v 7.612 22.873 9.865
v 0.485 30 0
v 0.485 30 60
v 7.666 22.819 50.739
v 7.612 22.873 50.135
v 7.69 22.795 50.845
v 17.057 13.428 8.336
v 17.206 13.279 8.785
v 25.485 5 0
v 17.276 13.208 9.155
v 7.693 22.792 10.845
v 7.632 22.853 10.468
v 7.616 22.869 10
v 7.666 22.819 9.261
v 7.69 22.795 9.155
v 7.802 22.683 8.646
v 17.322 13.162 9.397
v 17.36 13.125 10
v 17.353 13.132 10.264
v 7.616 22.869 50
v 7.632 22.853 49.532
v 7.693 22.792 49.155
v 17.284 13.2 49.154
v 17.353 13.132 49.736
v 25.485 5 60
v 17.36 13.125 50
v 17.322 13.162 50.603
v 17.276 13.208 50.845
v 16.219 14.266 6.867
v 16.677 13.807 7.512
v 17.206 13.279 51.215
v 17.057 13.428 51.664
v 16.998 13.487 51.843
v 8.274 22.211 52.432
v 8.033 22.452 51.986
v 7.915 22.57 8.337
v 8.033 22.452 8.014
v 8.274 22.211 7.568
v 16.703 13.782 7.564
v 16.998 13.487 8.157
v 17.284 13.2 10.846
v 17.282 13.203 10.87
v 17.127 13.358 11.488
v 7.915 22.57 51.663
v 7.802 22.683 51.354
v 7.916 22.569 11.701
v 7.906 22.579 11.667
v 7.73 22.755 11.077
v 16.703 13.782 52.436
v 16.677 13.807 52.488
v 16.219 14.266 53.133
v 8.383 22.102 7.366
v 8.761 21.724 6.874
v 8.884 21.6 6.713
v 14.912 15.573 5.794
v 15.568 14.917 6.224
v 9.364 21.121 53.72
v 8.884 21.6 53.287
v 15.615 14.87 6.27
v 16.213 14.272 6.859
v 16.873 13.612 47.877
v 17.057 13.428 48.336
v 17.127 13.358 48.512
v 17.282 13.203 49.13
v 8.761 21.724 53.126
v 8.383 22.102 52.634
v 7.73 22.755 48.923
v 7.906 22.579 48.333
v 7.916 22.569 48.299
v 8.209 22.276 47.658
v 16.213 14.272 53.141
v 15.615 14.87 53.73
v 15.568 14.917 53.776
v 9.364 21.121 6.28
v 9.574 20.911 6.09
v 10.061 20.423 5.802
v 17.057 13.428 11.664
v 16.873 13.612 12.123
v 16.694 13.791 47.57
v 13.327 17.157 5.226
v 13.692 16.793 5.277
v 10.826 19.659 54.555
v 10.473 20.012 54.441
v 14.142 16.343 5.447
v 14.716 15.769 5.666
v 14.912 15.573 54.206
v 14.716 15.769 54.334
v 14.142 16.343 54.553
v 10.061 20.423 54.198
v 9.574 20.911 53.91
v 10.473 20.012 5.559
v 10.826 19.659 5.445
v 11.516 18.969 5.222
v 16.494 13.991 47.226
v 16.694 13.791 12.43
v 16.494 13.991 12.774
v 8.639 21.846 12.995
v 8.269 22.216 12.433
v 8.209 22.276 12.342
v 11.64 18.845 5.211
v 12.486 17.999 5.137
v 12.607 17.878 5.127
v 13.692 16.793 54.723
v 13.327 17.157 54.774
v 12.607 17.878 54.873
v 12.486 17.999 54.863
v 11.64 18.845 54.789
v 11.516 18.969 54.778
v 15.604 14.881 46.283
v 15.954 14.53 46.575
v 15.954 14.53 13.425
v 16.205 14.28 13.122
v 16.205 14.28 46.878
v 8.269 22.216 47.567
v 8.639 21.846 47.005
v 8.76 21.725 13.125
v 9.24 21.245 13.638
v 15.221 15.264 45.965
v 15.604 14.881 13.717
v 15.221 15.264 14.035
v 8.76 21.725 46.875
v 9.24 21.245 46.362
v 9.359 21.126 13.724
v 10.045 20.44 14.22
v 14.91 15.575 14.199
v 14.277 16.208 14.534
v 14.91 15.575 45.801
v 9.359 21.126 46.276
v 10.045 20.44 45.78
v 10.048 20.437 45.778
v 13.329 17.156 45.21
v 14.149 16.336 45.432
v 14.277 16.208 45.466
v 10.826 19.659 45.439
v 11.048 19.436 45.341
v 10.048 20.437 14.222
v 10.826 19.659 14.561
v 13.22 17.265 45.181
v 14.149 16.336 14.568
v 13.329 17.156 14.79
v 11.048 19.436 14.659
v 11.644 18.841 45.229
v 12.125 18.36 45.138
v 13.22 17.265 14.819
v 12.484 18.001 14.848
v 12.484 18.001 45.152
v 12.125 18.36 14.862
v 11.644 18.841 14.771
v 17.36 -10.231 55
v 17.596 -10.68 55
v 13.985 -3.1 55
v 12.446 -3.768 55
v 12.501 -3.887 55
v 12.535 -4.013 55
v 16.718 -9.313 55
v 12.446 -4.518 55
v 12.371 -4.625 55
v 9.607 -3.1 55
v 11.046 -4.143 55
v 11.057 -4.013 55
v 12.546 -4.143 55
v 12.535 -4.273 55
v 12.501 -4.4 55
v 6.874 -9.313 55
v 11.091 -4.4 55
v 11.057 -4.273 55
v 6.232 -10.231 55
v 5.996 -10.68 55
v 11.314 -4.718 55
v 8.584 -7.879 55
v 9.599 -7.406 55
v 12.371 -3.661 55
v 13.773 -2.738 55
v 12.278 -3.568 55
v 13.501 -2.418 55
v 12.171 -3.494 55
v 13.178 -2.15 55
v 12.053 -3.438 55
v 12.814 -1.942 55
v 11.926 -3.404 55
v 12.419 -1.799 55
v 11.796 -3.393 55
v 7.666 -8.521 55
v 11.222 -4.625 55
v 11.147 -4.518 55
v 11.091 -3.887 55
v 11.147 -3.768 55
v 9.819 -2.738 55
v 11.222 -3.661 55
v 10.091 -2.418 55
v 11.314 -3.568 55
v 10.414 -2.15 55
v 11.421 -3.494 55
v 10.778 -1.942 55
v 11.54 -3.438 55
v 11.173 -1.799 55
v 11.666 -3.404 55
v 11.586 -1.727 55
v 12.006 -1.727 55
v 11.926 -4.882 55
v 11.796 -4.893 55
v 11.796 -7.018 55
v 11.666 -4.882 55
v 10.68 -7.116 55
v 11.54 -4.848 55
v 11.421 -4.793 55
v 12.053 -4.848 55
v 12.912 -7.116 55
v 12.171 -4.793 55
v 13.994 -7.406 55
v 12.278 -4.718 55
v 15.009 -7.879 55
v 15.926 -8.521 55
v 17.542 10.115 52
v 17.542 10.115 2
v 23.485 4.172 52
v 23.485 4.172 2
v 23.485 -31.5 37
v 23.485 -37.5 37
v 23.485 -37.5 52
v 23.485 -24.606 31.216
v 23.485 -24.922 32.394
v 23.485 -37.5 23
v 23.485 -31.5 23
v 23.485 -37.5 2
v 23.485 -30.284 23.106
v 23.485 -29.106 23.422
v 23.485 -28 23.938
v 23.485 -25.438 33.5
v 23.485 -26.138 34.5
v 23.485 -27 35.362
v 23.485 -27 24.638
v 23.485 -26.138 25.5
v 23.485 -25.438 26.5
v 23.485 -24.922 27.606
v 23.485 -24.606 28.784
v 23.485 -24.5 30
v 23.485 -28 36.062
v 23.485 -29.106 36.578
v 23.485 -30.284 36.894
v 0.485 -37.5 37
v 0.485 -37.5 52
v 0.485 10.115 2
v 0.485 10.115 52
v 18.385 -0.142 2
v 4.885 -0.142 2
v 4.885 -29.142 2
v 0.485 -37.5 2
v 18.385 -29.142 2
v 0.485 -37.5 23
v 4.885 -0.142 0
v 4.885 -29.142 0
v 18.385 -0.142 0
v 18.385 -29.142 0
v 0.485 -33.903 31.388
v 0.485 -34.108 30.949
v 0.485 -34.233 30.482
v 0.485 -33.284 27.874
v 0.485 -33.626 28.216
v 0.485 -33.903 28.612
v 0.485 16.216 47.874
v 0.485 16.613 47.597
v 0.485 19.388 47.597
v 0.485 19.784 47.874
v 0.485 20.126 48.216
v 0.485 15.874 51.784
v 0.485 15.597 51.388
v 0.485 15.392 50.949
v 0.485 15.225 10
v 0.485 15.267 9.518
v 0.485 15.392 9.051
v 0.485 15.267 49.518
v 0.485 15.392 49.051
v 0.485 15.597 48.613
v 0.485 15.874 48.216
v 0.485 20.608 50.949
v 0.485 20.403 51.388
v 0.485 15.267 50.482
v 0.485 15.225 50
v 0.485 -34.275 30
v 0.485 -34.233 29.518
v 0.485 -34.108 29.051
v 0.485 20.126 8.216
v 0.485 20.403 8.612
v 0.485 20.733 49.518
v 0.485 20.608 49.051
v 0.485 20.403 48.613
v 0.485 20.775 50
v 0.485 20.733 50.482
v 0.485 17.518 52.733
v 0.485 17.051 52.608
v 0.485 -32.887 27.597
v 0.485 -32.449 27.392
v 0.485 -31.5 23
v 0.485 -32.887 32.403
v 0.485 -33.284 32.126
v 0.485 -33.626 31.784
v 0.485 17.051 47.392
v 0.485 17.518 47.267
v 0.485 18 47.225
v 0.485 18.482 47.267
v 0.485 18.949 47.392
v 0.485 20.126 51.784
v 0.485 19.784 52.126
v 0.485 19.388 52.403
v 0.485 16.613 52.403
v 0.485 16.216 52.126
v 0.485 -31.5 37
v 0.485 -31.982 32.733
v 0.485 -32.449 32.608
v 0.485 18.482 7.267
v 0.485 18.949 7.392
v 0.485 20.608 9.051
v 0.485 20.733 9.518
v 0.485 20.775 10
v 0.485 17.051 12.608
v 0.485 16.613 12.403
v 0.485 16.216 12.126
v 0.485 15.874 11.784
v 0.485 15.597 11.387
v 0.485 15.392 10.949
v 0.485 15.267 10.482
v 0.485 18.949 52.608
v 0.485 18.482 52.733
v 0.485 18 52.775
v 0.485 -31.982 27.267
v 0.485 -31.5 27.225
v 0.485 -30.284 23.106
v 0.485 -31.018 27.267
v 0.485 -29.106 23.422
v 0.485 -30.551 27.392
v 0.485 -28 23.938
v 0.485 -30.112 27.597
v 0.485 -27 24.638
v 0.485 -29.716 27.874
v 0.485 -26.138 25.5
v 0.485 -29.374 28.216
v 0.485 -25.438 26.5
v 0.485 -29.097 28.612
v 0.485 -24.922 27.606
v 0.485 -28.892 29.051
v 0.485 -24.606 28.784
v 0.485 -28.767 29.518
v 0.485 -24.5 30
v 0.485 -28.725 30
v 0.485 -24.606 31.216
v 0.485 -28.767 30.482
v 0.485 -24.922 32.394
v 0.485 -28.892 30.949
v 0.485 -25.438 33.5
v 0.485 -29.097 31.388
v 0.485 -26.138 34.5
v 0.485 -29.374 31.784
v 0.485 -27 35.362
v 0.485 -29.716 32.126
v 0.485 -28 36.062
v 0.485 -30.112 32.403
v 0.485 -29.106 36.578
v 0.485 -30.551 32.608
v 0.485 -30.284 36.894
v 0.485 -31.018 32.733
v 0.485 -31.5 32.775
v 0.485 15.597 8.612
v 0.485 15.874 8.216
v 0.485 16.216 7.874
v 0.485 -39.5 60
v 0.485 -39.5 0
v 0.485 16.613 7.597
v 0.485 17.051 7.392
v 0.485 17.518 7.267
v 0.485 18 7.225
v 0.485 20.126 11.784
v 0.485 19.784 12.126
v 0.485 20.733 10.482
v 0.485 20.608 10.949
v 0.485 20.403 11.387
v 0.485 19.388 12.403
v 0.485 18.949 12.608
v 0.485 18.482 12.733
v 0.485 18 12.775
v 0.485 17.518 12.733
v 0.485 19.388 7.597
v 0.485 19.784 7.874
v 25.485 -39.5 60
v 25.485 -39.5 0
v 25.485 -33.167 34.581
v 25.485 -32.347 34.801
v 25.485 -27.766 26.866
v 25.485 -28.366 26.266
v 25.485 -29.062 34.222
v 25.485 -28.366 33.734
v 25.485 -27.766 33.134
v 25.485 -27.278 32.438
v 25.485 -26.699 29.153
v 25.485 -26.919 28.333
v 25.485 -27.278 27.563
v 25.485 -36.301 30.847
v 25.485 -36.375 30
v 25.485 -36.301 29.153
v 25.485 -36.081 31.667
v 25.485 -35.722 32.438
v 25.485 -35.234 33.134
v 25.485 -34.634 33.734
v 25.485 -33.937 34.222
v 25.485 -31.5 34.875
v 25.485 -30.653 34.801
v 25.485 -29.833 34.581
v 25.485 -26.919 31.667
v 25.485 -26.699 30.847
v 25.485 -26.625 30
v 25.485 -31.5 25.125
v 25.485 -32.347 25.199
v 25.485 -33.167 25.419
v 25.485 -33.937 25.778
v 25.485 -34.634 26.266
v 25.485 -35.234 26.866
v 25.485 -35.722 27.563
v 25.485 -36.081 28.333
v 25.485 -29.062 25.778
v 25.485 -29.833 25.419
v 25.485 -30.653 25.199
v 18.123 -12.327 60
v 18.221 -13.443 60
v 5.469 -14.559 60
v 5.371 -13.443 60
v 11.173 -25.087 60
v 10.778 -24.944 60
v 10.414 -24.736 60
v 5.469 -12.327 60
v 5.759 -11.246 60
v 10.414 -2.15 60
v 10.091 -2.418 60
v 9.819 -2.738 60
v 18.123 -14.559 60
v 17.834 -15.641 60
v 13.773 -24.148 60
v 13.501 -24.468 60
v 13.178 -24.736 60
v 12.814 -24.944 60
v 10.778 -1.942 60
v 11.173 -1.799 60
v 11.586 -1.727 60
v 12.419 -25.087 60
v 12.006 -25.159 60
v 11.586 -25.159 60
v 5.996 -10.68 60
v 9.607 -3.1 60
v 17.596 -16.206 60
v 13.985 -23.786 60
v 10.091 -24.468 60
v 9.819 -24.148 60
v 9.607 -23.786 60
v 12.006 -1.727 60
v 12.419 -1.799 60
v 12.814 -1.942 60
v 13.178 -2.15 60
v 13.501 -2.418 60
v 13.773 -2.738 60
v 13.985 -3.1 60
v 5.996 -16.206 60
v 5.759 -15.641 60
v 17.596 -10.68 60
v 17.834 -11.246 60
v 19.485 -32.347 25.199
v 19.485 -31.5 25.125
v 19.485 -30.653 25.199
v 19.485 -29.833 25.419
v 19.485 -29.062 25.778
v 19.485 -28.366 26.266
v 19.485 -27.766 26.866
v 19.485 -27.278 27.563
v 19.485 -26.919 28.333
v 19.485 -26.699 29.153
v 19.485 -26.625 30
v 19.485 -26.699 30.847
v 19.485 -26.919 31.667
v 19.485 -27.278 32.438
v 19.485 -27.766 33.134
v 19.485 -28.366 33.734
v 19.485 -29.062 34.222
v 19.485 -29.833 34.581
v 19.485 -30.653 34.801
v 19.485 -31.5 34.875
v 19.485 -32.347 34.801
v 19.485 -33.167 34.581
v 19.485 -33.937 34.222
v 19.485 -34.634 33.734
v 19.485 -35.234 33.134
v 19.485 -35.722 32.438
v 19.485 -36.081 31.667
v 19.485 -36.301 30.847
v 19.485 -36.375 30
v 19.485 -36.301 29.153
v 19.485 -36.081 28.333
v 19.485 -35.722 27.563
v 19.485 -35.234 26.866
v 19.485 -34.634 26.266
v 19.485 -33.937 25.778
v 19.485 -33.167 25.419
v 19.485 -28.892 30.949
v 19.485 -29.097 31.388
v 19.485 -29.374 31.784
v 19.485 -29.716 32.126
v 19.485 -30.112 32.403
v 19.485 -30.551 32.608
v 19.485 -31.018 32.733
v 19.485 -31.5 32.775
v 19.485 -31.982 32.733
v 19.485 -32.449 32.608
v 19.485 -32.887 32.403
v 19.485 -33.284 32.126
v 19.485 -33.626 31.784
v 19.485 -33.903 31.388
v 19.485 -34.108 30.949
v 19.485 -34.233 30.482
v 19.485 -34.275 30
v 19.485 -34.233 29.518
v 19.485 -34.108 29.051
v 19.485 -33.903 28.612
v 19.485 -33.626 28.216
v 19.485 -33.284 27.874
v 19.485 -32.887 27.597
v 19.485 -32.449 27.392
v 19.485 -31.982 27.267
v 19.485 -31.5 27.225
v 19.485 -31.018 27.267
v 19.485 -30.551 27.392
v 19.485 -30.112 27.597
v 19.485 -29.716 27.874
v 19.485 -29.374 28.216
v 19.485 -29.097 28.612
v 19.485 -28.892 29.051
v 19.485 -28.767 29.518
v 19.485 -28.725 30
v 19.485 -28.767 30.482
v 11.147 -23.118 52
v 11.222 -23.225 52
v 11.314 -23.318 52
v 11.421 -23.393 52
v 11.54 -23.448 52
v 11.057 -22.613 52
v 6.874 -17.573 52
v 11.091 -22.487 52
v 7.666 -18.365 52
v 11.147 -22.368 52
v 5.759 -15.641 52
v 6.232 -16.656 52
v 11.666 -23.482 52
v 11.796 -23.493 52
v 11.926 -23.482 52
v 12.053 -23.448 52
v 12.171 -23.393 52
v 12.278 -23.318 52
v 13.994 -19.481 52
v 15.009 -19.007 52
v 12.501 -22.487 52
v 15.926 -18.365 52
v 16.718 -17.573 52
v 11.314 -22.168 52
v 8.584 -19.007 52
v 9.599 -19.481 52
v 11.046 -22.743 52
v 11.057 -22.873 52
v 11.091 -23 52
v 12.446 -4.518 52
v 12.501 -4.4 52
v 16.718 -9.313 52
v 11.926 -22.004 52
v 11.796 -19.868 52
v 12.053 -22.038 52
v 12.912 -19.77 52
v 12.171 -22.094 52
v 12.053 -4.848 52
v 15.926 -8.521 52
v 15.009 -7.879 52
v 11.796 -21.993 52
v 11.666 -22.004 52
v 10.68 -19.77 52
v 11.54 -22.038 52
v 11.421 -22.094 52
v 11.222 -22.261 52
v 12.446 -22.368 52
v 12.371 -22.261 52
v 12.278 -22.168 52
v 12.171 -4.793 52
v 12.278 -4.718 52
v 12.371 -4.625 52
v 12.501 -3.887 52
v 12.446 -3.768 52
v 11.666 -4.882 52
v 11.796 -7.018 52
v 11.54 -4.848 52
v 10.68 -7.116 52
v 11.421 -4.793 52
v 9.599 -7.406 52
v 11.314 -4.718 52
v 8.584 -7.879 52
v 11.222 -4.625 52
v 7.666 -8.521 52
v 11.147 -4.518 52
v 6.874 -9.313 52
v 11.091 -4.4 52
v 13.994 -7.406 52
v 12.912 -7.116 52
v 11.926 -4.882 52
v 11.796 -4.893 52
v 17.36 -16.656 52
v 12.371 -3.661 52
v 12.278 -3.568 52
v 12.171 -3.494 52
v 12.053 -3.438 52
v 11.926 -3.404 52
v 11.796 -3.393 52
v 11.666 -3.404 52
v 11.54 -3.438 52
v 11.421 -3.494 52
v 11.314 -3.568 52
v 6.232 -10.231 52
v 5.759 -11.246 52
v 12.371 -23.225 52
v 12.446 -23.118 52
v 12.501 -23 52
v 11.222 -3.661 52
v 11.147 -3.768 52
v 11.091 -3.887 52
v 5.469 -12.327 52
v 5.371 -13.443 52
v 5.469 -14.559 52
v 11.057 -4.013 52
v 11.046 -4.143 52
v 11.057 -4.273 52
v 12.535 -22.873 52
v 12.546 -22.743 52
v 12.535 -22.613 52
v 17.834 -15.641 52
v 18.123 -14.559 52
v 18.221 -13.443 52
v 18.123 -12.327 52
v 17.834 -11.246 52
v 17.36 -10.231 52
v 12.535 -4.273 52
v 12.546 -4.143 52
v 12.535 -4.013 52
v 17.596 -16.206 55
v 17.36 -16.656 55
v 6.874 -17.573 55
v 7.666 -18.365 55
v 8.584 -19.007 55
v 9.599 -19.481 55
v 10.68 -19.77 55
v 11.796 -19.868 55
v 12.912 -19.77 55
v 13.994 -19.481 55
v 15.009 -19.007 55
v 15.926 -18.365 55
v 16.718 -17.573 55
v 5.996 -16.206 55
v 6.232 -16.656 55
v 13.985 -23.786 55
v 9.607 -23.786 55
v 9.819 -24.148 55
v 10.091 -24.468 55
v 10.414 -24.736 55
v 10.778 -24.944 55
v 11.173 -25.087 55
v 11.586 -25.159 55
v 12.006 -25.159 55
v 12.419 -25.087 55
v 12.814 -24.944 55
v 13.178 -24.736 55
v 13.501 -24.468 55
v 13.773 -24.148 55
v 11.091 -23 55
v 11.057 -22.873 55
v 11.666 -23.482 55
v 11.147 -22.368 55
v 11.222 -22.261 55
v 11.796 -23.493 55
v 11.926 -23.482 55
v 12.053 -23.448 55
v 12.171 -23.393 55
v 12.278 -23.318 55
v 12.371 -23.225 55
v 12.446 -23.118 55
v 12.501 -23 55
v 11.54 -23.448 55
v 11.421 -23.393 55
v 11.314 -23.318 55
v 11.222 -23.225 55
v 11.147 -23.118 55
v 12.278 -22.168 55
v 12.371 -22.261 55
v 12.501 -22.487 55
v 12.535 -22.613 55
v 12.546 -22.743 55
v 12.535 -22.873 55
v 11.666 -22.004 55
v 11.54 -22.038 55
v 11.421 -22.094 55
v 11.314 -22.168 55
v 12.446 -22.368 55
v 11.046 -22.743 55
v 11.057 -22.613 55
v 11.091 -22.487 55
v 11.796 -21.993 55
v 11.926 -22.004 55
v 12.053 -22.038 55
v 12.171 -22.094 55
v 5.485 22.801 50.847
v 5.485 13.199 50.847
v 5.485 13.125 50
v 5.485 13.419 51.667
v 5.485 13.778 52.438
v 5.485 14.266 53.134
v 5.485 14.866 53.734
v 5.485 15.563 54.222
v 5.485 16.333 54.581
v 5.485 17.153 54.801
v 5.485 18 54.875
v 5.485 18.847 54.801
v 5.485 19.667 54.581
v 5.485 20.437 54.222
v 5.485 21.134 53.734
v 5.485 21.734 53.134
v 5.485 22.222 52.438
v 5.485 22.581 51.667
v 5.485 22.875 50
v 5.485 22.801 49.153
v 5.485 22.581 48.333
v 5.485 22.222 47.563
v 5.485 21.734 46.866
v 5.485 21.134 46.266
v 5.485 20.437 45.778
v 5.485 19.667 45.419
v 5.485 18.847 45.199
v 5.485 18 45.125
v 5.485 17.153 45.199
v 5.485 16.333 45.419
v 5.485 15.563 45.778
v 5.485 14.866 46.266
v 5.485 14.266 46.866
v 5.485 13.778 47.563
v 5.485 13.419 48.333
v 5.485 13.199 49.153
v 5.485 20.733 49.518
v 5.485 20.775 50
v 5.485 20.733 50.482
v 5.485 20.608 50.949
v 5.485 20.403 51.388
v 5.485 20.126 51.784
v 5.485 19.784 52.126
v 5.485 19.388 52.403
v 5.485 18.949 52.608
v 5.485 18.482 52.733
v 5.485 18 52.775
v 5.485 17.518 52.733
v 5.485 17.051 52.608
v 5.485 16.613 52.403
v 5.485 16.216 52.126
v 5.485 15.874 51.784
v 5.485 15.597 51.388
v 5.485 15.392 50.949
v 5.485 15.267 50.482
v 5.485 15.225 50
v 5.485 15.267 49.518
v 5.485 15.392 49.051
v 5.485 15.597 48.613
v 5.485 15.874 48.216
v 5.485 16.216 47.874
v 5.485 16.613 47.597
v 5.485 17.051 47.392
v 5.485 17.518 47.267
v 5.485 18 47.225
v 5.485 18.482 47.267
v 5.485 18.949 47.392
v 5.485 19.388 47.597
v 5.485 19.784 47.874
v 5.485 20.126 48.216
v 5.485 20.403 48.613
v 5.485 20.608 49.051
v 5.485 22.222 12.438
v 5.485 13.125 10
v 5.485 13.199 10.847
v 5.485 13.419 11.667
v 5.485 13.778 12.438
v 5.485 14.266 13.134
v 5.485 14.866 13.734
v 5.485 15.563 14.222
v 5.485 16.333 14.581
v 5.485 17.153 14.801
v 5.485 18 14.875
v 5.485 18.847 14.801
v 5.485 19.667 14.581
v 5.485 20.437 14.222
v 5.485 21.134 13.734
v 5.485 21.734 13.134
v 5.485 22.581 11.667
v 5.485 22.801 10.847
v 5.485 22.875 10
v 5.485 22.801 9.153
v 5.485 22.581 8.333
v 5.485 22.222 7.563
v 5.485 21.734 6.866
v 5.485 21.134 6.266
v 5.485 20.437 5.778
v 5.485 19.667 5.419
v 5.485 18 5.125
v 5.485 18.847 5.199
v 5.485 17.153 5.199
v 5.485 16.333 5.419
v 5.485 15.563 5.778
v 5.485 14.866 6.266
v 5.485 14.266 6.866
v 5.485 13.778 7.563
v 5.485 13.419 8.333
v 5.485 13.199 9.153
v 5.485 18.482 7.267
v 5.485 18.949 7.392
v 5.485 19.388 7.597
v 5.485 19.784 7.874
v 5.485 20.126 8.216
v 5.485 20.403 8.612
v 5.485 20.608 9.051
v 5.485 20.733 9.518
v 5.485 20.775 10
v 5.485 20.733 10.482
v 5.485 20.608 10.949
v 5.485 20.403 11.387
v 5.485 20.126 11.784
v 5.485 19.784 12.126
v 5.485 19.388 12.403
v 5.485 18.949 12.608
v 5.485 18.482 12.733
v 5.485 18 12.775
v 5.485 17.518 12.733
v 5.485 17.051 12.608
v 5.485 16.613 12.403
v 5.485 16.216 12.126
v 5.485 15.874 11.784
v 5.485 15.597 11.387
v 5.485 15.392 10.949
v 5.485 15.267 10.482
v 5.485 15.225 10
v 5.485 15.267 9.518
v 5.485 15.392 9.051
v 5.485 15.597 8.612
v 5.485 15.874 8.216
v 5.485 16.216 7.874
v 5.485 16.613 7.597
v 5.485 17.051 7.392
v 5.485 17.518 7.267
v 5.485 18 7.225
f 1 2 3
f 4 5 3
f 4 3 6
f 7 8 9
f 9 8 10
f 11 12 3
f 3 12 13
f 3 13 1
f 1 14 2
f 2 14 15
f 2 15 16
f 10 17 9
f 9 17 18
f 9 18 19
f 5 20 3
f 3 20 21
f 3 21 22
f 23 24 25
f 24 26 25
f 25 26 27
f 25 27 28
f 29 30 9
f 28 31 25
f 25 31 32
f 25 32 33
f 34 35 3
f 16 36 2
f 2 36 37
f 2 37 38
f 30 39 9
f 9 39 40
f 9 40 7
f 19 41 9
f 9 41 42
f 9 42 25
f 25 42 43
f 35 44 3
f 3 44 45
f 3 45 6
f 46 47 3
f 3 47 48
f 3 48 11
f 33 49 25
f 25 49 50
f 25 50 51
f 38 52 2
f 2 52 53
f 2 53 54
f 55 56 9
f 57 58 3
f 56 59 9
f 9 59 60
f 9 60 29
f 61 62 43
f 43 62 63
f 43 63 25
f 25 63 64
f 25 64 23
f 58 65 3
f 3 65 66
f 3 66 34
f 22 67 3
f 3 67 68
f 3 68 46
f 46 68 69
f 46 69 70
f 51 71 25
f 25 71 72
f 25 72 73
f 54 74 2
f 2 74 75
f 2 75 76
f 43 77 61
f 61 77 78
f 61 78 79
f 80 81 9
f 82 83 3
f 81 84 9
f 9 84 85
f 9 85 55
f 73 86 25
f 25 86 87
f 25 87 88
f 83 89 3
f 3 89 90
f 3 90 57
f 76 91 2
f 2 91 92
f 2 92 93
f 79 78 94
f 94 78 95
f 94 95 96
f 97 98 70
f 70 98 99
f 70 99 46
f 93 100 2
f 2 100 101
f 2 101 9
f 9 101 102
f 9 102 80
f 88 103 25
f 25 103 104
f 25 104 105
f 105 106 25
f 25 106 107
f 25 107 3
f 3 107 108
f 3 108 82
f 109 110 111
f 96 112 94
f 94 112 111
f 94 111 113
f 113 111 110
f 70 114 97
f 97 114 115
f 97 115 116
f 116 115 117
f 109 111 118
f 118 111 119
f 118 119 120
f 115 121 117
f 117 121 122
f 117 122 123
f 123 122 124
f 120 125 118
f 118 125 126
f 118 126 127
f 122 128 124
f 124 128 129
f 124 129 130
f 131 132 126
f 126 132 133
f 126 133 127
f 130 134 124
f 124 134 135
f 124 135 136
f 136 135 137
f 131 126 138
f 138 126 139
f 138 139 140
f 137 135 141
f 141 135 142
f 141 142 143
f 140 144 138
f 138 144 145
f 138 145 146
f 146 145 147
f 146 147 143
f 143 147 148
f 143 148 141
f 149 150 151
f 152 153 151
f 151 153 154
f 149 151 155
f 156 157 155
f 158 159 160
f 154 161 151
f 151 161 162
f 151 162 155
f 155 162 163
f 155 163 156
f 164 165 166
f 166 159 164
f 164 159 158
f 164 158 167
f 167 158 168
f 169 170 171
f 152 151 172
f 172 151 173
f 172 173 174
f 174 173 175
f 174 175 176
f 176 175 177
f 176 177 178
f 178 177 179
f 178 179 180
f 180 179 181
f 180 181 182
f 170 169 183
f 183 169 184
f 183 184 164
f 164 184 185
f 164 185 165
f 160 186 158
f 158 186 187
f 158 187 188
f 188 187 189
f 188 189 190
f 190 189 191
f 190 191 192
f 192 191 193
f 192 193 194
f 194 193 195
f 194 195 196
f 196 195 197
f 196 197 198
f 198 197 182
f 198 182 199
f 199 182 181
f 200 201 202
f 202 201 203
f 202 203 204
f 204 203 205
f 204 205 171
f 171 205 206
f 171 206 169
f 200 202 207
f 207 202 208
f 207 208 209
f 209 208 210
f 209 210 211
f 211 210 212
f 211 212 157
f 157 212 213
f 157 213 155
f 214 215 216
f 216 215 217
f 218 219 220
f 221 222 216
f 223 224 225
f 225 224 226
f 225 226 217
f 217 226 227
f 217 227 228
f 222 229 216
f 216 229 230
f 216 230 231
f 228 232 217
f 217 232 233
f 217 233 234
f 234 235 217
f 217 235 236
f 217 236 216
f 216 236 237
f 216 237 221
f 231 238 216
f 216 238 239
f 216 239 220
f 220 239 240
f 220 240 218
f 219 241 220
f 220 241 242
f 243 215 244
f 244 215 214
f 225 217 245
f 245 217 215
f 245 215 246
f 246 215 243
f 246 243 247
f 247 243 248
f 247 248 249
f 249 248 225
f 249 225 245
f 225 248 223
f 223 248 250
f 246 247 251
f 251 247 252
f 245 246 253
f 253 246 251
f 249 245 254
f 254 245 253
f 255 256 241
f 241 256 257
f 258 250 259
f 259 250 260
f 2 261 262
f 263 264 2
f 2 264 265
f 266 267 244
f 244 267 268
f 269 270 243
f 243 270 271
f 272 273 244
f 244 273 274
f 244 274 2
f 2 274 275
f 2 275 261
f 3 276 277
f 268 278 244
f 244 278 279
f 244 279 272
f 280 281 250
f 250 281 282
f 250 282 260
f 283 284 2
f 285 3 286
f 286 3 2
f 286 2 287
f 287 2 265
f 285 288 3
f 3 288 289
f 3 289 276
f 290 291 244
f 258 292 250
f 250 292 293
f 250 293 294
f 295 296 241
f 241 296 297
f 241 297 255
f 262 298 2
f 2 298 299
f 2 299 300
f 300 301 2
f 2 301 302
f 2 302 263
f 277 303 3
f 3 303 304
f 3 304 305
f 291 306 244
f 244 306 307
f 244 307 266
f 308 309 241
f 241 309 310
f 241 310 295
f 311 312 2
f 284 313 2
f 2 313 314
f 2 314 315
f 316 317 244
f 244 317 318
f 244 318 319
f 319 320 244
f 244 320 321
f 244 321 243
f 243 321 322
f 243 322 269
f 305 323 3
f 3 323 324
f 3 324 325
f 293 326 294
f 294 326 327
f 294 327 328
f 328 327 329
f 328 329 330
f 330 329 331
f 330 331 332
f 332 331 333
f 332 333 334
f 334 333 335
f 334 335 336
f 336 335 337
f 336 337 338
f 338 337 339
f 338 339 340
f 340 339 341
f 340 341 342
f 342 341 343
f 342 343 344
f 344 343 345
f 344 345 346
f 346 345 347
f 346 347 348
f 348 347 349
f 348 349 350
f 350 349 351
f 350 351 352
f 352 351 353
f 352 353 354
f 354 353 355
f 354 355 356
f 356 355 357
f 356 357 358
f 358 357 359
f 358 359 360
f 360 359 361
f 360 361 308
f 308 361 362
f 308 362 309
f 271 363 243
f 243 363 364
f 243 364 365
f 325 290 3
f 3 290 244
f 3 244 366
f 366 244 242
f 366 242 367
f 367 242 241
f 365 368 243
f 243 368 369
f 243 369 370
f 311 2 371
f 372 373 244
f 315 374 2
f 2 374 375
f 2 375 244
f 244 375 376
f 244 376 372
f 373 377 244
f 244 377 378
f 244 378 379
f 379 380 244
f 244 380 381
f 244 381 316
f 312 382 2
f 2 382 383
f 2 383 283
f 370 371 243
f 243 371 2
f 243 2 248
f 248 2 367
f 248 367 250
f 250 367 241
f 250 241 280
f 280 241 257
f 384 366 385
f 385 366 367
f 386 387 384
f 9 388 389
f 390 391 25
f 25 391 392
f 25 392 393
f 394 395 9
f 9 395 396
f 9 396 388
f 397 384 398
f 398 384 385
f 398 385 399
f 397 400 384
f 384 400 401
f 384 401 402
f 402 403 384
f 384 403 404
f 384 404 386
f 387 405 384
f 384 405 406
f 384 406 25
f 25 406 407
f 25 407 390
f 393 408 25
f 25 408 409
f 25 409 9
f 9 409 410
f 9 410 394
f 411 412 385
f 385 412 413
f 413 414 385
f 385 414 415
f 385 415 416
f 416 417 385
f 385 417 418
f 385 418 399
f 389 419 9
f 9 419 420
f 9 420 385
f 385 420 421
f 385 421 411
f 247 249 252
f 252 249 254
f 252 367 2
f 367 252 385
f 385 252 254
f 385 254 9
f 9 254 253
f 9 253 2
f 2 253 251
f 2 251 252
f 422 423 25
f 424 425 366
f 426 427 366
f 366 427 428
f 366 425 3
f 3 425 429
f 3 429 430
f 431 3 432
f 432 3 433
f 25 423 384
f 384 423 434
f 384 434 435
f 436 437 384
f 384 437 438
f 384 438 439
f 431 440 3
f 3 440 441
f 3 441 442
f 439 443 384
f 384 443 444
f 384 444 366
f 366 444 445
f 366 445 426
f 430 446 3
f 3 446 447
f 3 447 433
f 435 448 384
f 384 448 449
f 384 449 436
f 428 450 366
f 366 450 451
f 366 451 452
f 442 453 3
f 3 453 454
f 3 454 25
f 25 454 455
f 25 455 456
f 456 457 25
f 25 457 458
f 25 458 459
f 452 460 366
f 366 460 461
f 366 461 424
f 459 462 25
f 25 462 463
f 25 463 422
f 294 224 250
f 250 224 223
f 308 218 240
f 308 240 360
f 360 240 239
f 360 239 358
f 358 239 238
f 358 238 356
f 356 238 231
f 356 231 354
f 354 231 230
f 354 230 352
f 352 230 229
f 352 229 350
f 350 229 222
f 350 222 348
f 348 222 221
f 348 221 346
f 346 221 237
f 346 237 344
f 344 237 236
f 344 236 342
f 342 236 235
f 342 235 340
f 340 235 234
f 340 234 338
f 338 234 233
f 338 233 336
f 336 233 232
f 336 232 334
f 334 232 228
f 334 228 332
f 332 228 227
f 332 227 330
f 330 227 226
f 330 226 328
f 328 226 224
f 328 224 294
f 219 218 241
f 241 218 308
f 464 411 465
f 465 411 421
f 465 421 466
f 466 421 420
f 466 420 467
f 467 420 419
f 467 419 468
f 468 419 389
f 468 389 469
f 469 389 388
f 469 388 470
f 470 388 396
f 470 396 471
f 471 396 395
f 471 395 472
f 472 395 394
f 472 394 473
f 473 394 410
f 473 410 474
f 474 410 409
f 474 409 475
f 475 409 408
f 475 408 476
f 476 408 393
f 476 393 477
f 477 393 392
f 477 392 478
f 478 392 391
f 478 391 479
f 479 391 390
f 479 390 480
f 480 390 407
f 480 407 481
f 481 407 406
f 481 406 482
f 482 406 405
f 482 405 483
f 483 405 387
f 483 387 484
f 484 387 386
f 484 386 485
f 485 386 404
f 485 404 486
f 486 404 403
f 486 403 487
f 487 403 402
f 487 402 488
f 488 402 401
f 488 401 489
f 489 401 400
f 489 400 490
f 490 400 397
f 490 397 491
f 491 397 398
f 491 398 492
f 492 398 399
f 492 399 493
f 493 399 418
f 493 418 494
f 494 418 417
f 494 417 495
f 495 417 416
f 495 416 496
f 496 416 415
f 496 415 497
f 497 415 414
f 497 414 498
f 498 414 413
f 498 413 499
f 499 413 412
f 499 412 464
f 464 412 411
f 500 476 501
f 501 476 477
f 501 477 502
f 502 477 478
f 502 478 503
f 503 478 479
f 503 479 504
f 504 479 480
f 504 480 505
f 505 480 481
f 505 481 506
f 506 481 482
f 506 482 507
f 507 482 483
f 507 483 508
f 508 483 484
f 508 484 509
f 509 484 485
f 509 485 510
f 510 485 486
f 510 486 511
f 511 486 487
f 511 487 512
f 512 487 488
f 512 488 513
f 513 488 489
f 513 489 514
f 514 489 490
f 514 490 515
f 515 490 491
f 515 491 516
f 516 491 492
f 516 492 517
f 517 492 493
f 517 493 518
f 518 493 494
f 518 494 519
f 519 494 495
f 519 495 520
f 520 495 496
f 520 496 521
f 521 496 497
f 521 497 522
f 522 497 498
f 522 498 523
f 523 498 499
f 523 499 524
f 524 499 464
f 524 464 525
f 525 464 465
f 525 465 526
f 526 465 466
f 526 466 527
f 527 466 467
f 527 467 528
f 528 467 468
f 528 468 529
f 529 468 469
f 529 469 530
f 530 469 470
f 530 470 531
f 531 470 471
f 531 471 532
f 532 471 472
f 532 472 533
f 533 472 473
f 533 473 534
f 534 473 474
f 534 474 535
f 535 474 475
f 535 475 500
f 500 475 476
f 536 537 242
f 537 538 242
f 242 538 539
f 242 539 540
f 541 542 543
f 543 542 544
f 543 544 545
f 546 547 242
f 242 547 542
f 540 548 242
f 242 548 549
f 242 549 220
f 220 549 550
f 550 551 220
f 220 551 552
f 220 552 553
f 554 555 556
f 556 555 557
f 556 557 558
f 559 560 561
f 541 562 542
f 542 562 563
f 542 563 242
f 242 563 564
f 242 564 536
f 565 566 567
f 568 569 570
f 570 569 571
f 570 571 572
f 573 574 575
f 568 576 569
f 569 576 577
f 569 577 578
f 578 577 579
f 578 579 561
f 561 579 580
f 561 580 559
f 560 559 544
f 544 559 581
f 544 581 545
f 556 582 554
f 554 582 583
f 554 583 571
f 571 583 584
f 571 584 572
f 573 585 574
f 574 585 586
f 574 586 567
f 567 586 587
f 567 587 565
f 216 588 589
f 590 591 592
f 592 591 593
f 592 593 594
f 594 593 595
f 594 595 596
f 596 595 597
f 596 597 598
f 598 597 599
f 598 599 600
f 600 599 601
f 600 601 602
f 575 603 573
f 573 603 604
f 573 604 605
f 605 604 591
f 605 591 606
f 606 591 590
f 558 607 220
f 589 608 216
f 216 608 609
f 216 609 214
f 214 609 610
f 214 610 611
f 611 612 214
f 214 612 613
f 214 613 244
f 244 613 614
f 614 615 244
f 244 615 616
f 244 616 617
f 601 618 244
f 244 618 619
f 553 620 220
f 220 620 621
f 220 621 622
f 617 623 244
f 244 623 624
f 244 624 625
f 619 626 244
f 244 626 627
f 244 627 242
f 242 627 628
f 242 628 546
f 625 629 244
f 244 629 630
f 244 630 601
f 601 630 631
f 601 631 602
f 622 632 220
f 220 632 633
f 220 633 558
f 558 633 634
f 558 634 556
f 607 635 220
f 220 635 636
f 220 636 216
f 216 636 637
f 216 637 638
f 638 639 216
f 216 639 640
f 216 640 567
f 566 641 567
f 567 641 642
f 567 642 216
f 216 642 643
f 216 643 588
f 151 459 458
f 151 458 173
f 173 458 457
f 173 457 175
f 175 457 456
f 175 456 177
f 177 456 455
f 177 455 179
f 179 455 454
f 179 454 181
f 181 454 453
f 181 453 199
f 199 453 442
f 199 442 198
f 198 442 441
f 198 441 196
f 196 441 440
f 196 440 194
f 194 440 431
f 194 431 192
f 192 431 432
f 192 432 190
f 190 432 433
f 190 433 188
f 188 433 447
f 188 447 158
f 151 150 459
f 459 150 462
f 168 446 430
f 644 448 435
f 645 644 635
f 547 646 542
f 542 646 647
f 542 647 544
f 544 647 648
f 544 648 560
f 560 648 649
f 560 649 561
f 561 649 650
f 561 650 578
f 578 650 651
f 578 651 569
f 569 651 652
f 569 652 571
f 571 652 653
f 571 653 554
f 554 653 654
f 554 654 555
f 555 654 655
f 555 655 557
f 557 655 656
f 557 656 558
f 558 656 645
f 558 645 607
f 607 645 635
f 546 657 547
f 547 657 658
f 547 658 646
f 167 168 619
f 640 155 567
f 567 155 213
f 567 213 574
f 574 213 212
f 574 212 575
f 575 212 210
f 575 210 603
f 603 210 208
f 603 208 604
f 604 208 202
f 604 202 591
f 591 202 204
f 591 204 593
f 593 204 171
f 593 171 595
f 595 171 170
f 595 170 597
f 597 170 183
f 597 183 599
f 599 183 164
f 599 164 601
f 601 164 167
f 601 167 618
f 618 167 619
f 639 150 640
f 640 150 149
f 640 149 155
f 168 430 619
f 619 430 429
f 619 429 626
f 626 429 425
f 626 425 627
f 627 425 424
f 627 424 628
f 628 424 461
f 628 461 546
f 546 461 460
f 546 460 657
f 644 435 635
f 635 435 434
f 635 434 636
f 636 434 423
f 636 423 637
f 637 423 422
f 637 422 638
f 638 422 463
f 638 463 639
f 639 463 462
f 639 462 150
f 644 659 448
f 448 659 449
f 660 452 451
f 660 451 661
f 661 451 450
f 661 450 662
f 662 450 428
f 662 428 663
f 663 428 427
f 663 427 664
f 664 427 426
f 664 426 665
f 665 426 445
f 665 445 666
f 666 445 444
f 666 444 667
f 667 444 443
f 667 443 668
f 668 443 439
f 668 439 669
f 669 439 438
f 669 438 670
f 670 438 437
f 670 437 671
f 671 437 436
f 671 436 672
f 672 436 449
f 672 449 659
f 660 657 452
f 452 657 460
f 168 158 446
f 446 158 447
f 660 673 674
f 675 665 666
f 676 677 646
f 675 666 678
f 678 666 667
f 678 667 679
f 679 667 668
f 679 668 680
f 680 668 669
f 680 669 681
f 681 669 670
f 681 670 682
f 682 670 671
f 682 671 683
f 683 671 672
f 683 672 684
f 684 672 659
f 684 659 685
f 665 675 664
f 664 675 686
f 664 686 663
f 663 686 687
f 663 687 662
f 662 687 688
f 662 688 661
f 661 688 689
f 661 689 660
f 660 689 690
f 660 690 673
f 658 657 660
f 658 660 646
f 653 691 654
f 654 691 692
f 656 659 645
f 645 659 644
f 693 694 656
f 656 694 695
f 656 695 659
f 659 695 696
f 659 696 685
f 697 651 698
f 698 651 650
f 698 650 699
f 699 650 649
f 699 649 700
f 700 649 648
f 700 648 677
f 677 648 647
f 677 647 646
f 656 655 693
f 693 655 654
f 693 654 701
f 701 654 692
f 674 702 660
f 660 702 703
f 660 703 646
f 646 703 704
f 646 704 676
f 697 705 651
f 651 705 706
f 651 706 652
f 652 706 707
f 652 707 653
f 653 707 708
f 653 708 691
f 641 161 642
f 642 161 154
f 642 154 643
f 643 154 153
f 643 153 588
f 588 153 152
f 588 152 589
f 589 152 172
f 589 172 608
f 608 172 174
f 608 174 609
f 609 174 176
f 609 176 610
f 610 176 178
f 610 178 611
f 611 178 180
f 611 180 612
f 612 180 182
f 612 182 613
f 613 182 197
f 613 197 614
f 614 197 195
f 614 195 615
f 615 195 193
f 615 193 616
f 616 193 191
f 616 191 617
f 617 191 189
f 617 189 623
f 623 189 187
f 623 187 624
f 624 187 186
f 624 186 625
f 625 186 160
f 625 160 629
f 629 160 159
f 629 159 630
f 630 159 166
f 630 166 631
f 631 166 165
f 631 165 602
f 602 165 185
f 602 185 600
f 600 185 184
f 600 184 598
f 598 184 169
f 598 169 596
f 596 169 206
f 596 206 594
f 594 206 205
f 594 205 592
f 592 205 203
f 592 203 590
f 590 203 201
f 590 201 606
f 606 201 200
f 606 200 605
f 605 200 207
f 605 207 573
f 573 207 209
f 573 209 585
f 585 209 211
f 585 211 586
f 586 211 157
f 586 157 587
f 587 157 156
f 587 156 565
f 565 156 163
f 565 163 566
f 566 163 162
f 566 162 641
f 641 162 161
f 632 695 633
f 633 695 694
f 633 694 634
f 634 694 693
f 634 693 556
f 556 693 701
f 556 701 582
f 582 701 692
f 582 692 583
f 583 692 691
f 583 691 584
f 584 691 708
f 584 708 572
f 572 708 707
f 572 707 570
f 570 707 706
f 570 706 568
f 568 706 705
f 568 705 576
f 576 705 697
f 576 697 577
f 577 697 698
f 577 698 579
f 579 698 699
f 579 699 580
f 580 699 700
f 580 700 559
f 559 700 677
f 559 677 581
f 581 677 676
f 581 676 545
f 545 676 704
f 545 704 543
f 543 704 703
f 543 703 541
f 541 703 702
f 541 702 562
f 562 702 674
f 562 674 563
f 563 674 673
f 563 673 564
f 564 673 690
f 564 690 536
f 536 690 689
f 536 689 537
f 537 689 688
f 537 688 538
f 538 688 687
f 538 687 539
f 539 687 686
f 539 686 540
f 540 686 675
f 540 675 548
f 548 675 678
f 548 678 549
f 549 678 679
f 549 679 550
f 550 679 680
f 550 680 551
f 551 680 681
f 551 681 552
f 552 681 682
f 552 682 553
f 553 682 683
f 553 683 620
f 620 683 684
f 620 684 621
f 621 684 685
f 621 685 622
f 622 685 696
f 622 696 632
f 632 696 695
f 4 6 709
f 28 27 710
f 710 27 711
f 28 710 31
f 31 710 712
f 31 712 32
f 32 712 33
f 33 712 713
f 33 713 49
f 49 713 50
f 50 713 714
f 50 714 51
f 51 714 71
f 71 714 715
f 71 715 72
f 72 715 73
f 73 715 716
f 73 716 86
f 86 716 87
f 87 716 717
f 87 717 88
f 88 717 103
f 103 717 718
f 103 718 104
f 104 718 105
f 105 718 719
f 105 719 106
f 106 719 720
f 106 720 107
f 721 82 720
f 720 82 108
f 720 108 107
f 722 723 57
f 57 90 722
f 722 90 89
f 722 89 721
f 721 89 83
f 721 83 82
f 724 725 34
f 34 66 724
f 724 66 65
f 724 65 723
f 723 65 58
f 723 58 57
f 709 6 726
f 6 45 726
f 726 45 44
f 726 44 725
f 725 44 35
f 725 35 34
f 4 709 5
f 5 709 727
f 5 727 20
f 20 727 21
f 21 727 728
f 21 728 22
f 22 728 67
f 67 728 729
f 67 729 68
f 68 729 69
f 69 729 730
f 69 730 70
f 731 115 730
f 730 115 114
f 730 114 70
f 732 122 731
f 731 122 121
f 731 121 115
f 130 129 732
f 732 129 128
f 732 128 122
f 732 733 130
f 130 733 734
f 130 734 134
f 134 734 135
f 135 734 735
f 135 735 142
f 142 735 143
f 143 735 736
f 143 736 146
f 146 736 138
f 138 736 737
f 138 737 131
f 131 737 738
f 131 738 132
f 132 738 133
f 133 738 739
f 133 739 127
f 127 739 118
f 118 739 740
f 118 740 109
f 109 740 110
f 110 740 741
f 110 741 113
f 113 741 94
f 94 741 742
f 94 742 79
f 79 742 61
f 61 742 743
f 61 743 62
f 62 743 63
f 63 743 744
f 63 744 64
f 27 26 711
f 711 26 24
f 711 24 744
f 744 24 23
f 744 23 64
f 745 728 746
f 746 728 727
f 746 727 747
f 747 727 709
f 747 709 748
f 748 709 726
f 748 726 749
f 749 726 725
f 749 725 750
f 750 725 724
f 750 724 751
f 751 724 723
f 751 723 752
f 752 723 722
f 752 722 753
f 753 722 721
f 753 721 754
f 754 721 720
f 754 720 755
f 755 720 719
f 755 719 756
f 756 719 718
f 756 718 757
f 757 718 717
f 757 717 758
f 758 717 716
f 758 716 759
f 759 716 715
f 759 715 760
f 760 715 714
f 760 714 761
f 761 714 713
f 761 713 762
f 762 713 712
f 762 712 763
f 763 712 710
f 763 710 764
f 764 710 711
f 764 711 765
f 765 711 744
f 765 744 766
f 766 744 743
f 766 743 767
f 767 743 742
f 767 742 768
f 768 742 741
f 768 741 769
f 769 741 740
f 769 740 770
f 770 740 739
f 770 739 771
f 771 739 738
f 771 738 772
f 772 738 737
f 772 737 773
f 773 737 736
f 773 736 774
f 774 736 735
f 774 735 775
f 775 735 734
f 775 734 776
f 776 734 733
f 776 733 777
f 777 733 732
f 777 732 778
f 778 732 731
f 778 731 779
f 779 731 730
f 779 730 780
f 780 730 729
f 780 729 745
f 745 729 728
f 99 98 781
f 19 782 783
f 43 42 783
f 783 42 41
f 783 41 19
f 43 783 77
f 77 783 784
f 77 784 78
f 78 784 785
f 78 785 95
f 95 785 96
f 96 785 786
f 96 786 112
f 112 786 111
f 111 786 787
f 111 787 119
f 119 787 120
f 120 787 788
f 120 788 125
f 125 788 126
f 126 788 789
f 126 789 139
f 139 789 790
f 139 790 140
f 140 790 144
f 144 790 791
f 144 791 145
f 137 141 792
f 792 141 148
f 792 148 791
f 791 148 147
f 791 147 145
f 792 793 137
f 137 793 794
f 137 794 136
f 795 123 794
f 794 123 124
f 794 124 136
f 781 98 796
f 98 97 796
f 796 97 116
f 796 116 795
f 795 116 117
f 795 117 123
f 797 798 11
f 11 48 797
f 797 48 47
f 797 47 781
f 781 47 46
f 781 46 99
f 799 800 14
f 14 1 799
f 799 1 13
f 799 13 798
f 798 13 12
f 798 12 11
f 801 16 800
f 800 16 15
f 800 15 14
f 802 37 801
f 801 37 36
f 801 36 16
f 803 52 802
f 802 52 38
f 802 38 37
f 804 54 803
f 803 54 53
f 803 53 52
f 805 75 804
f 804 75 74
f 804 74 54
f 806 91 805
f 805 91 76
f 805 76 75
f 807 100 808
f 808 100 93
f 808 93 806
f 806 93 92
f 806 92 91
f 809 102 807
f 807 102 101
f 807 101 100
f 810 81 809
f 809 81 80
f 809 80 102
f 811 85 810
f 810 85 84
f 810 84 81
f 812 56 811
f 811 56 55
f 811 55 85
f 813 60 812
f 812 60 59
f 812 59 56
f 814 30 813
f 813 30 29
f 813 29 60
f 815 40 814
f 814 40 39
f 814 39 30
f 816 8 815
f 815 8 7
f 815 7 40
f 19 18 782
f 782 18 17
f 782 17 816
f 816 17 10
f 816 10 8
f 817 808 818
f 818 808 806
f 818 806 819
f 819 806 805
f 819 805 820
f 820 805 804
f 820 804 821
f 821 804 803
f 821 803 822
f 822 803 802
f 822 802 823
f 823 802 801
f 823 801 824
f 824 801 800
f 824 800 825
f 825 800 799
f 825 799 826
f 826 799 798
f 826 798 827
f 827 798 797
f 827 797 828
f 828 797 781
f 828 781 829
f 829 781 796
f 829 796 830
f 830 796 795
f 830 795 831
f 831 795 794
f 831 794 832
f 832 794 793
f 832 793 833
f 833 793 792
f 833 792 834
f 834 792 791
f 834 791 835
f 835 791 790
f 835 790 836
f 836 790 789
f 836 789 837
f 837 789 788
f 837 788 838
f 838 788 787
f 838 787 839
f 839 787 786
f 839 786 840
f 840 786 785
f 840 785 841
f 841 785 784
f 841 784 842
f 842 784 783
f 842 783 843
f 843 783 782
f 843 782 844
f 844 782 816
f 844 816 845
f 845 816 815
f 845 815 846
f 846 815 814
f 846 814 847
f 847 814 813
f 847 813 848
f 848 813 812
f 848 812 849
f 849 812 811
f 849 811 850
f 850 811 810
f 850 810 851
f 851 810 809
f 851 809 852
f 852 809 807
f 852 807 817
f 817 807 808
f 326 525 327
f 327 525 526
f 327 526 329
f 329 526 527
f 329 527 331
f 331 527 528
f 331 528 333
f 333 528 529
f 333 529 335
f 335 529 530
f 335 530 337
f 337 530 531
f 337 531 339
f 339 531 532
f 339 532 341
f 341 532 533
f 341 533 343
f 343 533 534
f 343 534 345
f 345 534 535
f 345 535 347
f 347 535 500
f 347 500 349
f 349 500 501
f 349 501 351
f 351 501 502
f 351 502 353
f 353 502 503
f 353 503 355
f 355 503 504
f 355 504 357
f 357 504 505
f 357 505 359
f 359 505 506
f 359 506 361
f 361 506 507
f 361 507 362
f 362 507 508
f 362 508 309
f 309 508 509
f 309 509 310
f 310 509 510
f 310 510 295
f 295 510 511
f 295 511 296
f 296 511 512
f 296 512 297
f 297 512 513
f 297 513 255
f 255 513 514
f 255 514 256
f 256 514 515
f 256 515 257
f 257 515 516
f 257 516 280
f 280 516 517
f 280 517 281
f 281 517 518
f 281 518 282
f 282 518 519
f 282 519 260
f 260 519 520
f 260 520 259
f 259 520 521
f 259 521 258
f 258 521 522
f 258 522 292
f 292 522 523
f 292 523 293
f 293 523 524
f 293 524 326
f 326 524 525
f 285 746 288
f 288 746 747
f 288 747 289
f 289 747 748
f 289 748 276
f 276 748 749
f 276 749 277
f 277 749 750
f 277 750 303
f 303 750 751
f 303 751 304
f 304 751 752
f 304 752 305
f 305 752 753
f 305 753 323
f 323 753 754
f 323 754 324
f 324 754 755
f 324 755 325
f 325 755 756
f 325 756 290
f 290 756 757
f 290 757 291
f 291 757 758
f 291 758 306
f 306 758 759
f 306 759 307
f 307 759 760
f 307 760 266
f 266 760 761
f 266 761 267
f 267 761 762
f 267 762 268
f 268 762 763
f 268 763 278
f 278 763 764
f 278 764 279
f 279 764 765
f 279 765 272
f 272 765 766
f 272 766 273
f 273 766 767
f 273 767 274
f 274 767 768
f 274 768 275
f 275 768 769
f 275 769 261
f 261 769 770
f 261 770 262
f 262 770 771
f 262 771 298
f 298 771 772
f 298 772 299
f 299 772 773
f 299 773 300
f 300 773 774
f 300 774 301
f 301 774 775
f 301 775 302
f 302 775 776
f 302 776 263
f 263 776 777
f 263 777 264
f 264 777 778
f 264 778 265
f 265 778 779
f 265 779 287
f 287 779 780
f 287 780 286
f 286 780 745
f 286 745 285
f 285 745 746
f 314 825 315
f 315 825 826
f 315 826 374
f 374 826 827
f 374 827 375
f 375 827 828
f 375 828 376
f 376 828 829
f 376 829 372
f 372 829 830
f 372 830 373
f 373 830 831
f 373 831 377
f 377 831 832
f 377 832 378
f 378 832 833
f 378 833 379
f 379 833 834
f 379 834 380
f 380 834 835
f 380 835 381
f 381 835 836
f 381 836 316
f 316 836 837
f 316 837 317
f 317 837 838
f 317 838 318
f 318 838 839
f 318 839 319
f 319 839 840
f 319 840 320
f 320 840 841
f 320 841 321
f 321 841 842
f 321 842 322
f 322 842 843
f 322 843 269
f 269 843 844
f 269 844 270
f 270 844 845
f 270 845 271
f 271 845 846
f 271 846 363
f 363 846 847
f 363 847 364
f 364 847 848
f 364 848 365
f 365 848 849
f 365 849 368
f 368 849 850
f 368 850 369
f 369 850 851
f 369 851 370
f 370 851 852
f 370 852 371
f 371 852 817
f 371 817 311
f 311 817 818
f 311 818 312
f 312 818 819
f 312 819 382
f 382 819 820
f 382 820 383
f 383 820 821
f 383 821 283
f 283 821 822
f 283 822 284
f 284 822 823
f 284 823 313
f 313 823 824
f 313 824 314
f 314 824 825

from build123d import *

# Parameters (mm, degrees)
SKETCH1_W           = 13.5
SKETCH1_H           = 29
BOSS_EXTRUDE1_DEPTH = 2
BOSS_EXTRUDE2_DEPTH = 56
BOSS_EXTRUDE3_DEPTH = 2
BOSS_EXTRUDE6_DEPTH = 23
SKETCH7_R           = 4.875
CUT_EXTRUDE2_DEPTH  = 6
BOSS_EXTRUDE7_REACH = 60
BOSS_EXTRUDE8_DEPTH = 6
CUT_EXTRUDE11_DEPTH = 5
SKETCH17_R          = 0.75
CUT_EXTRUDE13_DEPTH = 6
SKETCH18_R          = 6.425
CUT_EXTRUDE14_DEPTH = 6
SKETCH8_R           = 4.875
SKETCH8_R_2         = 2.775
CUT_EXTRUDE20_DEPTH = 20
SKETCH5_R           = 2.775
CUT_EXTRUDE21_DEPTH = 26
SKETCH19_R          = 2.775
CUT_EXTRUDE22_DEPTH = 26


with BuildPart() as part:
    # Sketch1 → Boss-Extrude1 (new body)
    with BuildSketch(Plane.XY):
        Polygon((23.484890655, 4.171572875), (0.484890655, 27.171572875), (0.484890655, -37.500000005), (23.484890655, -37.500000005), align=None)
        with Locations((11.635259587, -14.642279086)):
            Rectangle(SKETCH1_W, SKETCH1_H, mode=Mode.SUBTRACT)
        Polygon((23.484890655, 4.171572875), (23.484890655, -37.500000005), (0.484890655, -37.500000005), (0.484890655, -39.5), (25.484890655, -39.5), (25.484890655, 5), (0.484890655, 30), (0.484890655, 27.171572875), align=None)
    extrude(amount=BOSS_EXTRUDE1_DEPTH)

    # Sketch2 → Boss-Extrude2 (add)
    with BuildSketch(Plane.XY.offset(2)):
        Polygon((23.484890655, -37.500000005), (0.484890655, -37.500000005), (0.484890655, -39.5), (25.484890655, -39.5), (25.484890655, 5), (0.484890655, 30), (0.484890655, 27.171572875), (23.484890655, 4.171572875), align=None)
    extrude(amount=BOSS_EXTRUDE2_DEPTH)

    # Sketch3 → Boss-Extrude3 (add)
    with BuildSketch(Plane.XY.offset(58)):
        Polygon((25.484890655, 5), (0.484890655, 30), (0.484890655, -39.5), (25.484890655, -39.5), align=None)
    extrude(amount=BOSS_EXTRUDE3_DEPTH)

    # Sketch6 → Boss-Extrude6 (add)
    with BuildSketch(Plane.ZY.offset(-23.484890655)):
        with BuildLine():
            Line((37, -37.500000005), (37, -31.5))
            ThreePointArc((37, -31.5), (30, -24.5), (23, -31.5))
            Line((23, -31.5), (23, -37.500000005))
            Line((23, -37.500000005), (37, -37.500000005))
        make_face()
    extrude(amount=BOSS_EXTRUDE6_DEPTH)

    # Sketch7 → Cut-Extrude2 (cut)
    with BuildSketch(Plane(origin=(25.484890655, 0, 0), x_dir=(0, 0, -1), z_dir=(1, 0, 0))):
        with Locations((-30, -31.5)):
            Circle(SKETCH7_R)
    extrude(amount=-CUT_EXTRUDE2_DEPTH, mode=Mode.SUBTRACT)

    # Sketch9 → Boss-Extrude7 (add, up to next)
    with BuildSketch(Plane.XY.offset(2), mode=Mode.PRIVATE) as boss_extrude7_sk1:
        Polygon((0.484890655, 27.171572875), (17.541784111, 10.114679419), (0.484890655, 10.114679419), align=None)
    boss_extrude7_tool1 = extrude(boss_extrude7_sk1.sketch, amount=BOSS_EXTRUDE7_REACH, mode=Mode.PRIVATE) - part.part
    add(boss_extrude7_tool1.solids().sort_by_distance((6.170522, 15.800311, 2))[0])

    # Sketch14 → Boss-Extrude8 (add)
    with BuildSketch(Plane(origin=(0, 0, 58), x_dir=(-1, 0, 0), z_dir=(0, 0, -1))):
        Polygon((-17.541784111, 10.114679419), (-0.484890655, 10.114679419), (-0.484890655, -37.500000005), (-23.484890655, -37.500000005), (-23.484890655, 4.171572875), align=None)
    extrude(amount=BOSS_EXTRUDE8_DEPTH)

    # Sketch15 → Cut-Extrude11 (cut)
    with BuildSketch(Plane.XY.offset(60)):
        with BuildLine():
            Line((9.606797633, -3.100018288), (5.995686967, -10.67958818))
            ThreePointArc((5.995686967, -10.67958818), (5.371033475, -13.44302904), (5.995686967, -16.206469901))
            Line((5.995686967, -16.206469901), (9.606797633, -23.786039793))
            ThreePointArc((9.606797633, -23.786039793), (11.796033475, -25.16802904), (13.985269316, -23.786039793))
            Line((13.985269316, -23.786039793), (17.596379983, -16.206469901))
            ThreePointArc((17.596379983, -16.206469901), (18.221033475, -13.44302904), (17.596379983, -10.67958818))
            Line((17.596379983, -10.67958818), (13.985269316, -3.100018288))
            ThreePointArc((13.985269316, -3.100018288), (11.796033475, -1.71802904), (9.606797633, -3.100018288))
        make_face()
    extrude(amount=-CUT_EXTRUDE11_DEPTH, mode=Mode.SUBTRACT)

    # Sketch17 → Cut-Extrude13 (cut)
    with BuildSketch(Plane.XY.offset(55)):
        with Locations((11.796033475, -4.14302904)):
            Circle(SKETCH17_R)
        with Locations((11.796033475, -22.74302904)):
            Circle(SKETCH17_R)
    extrude(amount=-CUT_EXTRUDE13_DEPTH, mode=Mode.SUBTRACT)

    # Sketch18 → Cut-Extrude14 (cut)
    with BuildSketch(Plane.XY.offset(55)):
        with Locations((11.796033475, -13.44302904)):
            Circle(SKETCH18_R)
    extrude(amount=-CUT_EXTRUDE14_DEPTH, mode=Mode.SUBTRACT)

    # Sketch8 → Cut-Extrude20 (cut)
    with BuildSketch(Plane(origin=(25.484890655, 0, 0), x_dir=(0, 0, -1), z_dir=(1, 0, 0))):
        with Locations((-50, 18)):
            Circle(SKETCH8_R)
        with Locations((-50, 18)):
            Circle(SKETCH8_R_2, mode=Mode.SUBTRACT)
        with Locations((-10, 18)):
            Circle(SKETCH8_R)
        with Locations((-10, 18)):
            Circle(SKETCH8_R_2, mode=Mode.SUBTRACT)
    extrude(amount=-CUT_EXTRUDE20_DEPTH, mode=Mode.SUBTRACT)

    # Sketch5 → Cut-Extrude21 (cut, through all)
    with BuildSketch(Plane(origin=(25.484890655, 0, 0), x_dir=(0, 0, -1), z_dir=(1, 0, 0))):
        with Locations((-30, -31.5)):
            Circle(SKETCH5_R)
    extrude(amount=-CUT_EXTRUDE21_DEPTH, mode=Mode.SUBTRACT)

    # Sketch19 → Cut-Extrude22 (cut, through all)
    with BuildSketch(Plane(origin=(25.484890655, 0, 0), x_dir=(0, 0, -1), z_dir=(1, 0, 0))):
        with Locations((-50, 18)):
            Circle(SKETCH19_R)
        with Locations((-10, 18)):
            Circle(SKETCH19_R)
    extrude(amount=-CUT_EXTRUDE22_DEPTH, mode=Mode.SUBTRACT)


solid = part.part
